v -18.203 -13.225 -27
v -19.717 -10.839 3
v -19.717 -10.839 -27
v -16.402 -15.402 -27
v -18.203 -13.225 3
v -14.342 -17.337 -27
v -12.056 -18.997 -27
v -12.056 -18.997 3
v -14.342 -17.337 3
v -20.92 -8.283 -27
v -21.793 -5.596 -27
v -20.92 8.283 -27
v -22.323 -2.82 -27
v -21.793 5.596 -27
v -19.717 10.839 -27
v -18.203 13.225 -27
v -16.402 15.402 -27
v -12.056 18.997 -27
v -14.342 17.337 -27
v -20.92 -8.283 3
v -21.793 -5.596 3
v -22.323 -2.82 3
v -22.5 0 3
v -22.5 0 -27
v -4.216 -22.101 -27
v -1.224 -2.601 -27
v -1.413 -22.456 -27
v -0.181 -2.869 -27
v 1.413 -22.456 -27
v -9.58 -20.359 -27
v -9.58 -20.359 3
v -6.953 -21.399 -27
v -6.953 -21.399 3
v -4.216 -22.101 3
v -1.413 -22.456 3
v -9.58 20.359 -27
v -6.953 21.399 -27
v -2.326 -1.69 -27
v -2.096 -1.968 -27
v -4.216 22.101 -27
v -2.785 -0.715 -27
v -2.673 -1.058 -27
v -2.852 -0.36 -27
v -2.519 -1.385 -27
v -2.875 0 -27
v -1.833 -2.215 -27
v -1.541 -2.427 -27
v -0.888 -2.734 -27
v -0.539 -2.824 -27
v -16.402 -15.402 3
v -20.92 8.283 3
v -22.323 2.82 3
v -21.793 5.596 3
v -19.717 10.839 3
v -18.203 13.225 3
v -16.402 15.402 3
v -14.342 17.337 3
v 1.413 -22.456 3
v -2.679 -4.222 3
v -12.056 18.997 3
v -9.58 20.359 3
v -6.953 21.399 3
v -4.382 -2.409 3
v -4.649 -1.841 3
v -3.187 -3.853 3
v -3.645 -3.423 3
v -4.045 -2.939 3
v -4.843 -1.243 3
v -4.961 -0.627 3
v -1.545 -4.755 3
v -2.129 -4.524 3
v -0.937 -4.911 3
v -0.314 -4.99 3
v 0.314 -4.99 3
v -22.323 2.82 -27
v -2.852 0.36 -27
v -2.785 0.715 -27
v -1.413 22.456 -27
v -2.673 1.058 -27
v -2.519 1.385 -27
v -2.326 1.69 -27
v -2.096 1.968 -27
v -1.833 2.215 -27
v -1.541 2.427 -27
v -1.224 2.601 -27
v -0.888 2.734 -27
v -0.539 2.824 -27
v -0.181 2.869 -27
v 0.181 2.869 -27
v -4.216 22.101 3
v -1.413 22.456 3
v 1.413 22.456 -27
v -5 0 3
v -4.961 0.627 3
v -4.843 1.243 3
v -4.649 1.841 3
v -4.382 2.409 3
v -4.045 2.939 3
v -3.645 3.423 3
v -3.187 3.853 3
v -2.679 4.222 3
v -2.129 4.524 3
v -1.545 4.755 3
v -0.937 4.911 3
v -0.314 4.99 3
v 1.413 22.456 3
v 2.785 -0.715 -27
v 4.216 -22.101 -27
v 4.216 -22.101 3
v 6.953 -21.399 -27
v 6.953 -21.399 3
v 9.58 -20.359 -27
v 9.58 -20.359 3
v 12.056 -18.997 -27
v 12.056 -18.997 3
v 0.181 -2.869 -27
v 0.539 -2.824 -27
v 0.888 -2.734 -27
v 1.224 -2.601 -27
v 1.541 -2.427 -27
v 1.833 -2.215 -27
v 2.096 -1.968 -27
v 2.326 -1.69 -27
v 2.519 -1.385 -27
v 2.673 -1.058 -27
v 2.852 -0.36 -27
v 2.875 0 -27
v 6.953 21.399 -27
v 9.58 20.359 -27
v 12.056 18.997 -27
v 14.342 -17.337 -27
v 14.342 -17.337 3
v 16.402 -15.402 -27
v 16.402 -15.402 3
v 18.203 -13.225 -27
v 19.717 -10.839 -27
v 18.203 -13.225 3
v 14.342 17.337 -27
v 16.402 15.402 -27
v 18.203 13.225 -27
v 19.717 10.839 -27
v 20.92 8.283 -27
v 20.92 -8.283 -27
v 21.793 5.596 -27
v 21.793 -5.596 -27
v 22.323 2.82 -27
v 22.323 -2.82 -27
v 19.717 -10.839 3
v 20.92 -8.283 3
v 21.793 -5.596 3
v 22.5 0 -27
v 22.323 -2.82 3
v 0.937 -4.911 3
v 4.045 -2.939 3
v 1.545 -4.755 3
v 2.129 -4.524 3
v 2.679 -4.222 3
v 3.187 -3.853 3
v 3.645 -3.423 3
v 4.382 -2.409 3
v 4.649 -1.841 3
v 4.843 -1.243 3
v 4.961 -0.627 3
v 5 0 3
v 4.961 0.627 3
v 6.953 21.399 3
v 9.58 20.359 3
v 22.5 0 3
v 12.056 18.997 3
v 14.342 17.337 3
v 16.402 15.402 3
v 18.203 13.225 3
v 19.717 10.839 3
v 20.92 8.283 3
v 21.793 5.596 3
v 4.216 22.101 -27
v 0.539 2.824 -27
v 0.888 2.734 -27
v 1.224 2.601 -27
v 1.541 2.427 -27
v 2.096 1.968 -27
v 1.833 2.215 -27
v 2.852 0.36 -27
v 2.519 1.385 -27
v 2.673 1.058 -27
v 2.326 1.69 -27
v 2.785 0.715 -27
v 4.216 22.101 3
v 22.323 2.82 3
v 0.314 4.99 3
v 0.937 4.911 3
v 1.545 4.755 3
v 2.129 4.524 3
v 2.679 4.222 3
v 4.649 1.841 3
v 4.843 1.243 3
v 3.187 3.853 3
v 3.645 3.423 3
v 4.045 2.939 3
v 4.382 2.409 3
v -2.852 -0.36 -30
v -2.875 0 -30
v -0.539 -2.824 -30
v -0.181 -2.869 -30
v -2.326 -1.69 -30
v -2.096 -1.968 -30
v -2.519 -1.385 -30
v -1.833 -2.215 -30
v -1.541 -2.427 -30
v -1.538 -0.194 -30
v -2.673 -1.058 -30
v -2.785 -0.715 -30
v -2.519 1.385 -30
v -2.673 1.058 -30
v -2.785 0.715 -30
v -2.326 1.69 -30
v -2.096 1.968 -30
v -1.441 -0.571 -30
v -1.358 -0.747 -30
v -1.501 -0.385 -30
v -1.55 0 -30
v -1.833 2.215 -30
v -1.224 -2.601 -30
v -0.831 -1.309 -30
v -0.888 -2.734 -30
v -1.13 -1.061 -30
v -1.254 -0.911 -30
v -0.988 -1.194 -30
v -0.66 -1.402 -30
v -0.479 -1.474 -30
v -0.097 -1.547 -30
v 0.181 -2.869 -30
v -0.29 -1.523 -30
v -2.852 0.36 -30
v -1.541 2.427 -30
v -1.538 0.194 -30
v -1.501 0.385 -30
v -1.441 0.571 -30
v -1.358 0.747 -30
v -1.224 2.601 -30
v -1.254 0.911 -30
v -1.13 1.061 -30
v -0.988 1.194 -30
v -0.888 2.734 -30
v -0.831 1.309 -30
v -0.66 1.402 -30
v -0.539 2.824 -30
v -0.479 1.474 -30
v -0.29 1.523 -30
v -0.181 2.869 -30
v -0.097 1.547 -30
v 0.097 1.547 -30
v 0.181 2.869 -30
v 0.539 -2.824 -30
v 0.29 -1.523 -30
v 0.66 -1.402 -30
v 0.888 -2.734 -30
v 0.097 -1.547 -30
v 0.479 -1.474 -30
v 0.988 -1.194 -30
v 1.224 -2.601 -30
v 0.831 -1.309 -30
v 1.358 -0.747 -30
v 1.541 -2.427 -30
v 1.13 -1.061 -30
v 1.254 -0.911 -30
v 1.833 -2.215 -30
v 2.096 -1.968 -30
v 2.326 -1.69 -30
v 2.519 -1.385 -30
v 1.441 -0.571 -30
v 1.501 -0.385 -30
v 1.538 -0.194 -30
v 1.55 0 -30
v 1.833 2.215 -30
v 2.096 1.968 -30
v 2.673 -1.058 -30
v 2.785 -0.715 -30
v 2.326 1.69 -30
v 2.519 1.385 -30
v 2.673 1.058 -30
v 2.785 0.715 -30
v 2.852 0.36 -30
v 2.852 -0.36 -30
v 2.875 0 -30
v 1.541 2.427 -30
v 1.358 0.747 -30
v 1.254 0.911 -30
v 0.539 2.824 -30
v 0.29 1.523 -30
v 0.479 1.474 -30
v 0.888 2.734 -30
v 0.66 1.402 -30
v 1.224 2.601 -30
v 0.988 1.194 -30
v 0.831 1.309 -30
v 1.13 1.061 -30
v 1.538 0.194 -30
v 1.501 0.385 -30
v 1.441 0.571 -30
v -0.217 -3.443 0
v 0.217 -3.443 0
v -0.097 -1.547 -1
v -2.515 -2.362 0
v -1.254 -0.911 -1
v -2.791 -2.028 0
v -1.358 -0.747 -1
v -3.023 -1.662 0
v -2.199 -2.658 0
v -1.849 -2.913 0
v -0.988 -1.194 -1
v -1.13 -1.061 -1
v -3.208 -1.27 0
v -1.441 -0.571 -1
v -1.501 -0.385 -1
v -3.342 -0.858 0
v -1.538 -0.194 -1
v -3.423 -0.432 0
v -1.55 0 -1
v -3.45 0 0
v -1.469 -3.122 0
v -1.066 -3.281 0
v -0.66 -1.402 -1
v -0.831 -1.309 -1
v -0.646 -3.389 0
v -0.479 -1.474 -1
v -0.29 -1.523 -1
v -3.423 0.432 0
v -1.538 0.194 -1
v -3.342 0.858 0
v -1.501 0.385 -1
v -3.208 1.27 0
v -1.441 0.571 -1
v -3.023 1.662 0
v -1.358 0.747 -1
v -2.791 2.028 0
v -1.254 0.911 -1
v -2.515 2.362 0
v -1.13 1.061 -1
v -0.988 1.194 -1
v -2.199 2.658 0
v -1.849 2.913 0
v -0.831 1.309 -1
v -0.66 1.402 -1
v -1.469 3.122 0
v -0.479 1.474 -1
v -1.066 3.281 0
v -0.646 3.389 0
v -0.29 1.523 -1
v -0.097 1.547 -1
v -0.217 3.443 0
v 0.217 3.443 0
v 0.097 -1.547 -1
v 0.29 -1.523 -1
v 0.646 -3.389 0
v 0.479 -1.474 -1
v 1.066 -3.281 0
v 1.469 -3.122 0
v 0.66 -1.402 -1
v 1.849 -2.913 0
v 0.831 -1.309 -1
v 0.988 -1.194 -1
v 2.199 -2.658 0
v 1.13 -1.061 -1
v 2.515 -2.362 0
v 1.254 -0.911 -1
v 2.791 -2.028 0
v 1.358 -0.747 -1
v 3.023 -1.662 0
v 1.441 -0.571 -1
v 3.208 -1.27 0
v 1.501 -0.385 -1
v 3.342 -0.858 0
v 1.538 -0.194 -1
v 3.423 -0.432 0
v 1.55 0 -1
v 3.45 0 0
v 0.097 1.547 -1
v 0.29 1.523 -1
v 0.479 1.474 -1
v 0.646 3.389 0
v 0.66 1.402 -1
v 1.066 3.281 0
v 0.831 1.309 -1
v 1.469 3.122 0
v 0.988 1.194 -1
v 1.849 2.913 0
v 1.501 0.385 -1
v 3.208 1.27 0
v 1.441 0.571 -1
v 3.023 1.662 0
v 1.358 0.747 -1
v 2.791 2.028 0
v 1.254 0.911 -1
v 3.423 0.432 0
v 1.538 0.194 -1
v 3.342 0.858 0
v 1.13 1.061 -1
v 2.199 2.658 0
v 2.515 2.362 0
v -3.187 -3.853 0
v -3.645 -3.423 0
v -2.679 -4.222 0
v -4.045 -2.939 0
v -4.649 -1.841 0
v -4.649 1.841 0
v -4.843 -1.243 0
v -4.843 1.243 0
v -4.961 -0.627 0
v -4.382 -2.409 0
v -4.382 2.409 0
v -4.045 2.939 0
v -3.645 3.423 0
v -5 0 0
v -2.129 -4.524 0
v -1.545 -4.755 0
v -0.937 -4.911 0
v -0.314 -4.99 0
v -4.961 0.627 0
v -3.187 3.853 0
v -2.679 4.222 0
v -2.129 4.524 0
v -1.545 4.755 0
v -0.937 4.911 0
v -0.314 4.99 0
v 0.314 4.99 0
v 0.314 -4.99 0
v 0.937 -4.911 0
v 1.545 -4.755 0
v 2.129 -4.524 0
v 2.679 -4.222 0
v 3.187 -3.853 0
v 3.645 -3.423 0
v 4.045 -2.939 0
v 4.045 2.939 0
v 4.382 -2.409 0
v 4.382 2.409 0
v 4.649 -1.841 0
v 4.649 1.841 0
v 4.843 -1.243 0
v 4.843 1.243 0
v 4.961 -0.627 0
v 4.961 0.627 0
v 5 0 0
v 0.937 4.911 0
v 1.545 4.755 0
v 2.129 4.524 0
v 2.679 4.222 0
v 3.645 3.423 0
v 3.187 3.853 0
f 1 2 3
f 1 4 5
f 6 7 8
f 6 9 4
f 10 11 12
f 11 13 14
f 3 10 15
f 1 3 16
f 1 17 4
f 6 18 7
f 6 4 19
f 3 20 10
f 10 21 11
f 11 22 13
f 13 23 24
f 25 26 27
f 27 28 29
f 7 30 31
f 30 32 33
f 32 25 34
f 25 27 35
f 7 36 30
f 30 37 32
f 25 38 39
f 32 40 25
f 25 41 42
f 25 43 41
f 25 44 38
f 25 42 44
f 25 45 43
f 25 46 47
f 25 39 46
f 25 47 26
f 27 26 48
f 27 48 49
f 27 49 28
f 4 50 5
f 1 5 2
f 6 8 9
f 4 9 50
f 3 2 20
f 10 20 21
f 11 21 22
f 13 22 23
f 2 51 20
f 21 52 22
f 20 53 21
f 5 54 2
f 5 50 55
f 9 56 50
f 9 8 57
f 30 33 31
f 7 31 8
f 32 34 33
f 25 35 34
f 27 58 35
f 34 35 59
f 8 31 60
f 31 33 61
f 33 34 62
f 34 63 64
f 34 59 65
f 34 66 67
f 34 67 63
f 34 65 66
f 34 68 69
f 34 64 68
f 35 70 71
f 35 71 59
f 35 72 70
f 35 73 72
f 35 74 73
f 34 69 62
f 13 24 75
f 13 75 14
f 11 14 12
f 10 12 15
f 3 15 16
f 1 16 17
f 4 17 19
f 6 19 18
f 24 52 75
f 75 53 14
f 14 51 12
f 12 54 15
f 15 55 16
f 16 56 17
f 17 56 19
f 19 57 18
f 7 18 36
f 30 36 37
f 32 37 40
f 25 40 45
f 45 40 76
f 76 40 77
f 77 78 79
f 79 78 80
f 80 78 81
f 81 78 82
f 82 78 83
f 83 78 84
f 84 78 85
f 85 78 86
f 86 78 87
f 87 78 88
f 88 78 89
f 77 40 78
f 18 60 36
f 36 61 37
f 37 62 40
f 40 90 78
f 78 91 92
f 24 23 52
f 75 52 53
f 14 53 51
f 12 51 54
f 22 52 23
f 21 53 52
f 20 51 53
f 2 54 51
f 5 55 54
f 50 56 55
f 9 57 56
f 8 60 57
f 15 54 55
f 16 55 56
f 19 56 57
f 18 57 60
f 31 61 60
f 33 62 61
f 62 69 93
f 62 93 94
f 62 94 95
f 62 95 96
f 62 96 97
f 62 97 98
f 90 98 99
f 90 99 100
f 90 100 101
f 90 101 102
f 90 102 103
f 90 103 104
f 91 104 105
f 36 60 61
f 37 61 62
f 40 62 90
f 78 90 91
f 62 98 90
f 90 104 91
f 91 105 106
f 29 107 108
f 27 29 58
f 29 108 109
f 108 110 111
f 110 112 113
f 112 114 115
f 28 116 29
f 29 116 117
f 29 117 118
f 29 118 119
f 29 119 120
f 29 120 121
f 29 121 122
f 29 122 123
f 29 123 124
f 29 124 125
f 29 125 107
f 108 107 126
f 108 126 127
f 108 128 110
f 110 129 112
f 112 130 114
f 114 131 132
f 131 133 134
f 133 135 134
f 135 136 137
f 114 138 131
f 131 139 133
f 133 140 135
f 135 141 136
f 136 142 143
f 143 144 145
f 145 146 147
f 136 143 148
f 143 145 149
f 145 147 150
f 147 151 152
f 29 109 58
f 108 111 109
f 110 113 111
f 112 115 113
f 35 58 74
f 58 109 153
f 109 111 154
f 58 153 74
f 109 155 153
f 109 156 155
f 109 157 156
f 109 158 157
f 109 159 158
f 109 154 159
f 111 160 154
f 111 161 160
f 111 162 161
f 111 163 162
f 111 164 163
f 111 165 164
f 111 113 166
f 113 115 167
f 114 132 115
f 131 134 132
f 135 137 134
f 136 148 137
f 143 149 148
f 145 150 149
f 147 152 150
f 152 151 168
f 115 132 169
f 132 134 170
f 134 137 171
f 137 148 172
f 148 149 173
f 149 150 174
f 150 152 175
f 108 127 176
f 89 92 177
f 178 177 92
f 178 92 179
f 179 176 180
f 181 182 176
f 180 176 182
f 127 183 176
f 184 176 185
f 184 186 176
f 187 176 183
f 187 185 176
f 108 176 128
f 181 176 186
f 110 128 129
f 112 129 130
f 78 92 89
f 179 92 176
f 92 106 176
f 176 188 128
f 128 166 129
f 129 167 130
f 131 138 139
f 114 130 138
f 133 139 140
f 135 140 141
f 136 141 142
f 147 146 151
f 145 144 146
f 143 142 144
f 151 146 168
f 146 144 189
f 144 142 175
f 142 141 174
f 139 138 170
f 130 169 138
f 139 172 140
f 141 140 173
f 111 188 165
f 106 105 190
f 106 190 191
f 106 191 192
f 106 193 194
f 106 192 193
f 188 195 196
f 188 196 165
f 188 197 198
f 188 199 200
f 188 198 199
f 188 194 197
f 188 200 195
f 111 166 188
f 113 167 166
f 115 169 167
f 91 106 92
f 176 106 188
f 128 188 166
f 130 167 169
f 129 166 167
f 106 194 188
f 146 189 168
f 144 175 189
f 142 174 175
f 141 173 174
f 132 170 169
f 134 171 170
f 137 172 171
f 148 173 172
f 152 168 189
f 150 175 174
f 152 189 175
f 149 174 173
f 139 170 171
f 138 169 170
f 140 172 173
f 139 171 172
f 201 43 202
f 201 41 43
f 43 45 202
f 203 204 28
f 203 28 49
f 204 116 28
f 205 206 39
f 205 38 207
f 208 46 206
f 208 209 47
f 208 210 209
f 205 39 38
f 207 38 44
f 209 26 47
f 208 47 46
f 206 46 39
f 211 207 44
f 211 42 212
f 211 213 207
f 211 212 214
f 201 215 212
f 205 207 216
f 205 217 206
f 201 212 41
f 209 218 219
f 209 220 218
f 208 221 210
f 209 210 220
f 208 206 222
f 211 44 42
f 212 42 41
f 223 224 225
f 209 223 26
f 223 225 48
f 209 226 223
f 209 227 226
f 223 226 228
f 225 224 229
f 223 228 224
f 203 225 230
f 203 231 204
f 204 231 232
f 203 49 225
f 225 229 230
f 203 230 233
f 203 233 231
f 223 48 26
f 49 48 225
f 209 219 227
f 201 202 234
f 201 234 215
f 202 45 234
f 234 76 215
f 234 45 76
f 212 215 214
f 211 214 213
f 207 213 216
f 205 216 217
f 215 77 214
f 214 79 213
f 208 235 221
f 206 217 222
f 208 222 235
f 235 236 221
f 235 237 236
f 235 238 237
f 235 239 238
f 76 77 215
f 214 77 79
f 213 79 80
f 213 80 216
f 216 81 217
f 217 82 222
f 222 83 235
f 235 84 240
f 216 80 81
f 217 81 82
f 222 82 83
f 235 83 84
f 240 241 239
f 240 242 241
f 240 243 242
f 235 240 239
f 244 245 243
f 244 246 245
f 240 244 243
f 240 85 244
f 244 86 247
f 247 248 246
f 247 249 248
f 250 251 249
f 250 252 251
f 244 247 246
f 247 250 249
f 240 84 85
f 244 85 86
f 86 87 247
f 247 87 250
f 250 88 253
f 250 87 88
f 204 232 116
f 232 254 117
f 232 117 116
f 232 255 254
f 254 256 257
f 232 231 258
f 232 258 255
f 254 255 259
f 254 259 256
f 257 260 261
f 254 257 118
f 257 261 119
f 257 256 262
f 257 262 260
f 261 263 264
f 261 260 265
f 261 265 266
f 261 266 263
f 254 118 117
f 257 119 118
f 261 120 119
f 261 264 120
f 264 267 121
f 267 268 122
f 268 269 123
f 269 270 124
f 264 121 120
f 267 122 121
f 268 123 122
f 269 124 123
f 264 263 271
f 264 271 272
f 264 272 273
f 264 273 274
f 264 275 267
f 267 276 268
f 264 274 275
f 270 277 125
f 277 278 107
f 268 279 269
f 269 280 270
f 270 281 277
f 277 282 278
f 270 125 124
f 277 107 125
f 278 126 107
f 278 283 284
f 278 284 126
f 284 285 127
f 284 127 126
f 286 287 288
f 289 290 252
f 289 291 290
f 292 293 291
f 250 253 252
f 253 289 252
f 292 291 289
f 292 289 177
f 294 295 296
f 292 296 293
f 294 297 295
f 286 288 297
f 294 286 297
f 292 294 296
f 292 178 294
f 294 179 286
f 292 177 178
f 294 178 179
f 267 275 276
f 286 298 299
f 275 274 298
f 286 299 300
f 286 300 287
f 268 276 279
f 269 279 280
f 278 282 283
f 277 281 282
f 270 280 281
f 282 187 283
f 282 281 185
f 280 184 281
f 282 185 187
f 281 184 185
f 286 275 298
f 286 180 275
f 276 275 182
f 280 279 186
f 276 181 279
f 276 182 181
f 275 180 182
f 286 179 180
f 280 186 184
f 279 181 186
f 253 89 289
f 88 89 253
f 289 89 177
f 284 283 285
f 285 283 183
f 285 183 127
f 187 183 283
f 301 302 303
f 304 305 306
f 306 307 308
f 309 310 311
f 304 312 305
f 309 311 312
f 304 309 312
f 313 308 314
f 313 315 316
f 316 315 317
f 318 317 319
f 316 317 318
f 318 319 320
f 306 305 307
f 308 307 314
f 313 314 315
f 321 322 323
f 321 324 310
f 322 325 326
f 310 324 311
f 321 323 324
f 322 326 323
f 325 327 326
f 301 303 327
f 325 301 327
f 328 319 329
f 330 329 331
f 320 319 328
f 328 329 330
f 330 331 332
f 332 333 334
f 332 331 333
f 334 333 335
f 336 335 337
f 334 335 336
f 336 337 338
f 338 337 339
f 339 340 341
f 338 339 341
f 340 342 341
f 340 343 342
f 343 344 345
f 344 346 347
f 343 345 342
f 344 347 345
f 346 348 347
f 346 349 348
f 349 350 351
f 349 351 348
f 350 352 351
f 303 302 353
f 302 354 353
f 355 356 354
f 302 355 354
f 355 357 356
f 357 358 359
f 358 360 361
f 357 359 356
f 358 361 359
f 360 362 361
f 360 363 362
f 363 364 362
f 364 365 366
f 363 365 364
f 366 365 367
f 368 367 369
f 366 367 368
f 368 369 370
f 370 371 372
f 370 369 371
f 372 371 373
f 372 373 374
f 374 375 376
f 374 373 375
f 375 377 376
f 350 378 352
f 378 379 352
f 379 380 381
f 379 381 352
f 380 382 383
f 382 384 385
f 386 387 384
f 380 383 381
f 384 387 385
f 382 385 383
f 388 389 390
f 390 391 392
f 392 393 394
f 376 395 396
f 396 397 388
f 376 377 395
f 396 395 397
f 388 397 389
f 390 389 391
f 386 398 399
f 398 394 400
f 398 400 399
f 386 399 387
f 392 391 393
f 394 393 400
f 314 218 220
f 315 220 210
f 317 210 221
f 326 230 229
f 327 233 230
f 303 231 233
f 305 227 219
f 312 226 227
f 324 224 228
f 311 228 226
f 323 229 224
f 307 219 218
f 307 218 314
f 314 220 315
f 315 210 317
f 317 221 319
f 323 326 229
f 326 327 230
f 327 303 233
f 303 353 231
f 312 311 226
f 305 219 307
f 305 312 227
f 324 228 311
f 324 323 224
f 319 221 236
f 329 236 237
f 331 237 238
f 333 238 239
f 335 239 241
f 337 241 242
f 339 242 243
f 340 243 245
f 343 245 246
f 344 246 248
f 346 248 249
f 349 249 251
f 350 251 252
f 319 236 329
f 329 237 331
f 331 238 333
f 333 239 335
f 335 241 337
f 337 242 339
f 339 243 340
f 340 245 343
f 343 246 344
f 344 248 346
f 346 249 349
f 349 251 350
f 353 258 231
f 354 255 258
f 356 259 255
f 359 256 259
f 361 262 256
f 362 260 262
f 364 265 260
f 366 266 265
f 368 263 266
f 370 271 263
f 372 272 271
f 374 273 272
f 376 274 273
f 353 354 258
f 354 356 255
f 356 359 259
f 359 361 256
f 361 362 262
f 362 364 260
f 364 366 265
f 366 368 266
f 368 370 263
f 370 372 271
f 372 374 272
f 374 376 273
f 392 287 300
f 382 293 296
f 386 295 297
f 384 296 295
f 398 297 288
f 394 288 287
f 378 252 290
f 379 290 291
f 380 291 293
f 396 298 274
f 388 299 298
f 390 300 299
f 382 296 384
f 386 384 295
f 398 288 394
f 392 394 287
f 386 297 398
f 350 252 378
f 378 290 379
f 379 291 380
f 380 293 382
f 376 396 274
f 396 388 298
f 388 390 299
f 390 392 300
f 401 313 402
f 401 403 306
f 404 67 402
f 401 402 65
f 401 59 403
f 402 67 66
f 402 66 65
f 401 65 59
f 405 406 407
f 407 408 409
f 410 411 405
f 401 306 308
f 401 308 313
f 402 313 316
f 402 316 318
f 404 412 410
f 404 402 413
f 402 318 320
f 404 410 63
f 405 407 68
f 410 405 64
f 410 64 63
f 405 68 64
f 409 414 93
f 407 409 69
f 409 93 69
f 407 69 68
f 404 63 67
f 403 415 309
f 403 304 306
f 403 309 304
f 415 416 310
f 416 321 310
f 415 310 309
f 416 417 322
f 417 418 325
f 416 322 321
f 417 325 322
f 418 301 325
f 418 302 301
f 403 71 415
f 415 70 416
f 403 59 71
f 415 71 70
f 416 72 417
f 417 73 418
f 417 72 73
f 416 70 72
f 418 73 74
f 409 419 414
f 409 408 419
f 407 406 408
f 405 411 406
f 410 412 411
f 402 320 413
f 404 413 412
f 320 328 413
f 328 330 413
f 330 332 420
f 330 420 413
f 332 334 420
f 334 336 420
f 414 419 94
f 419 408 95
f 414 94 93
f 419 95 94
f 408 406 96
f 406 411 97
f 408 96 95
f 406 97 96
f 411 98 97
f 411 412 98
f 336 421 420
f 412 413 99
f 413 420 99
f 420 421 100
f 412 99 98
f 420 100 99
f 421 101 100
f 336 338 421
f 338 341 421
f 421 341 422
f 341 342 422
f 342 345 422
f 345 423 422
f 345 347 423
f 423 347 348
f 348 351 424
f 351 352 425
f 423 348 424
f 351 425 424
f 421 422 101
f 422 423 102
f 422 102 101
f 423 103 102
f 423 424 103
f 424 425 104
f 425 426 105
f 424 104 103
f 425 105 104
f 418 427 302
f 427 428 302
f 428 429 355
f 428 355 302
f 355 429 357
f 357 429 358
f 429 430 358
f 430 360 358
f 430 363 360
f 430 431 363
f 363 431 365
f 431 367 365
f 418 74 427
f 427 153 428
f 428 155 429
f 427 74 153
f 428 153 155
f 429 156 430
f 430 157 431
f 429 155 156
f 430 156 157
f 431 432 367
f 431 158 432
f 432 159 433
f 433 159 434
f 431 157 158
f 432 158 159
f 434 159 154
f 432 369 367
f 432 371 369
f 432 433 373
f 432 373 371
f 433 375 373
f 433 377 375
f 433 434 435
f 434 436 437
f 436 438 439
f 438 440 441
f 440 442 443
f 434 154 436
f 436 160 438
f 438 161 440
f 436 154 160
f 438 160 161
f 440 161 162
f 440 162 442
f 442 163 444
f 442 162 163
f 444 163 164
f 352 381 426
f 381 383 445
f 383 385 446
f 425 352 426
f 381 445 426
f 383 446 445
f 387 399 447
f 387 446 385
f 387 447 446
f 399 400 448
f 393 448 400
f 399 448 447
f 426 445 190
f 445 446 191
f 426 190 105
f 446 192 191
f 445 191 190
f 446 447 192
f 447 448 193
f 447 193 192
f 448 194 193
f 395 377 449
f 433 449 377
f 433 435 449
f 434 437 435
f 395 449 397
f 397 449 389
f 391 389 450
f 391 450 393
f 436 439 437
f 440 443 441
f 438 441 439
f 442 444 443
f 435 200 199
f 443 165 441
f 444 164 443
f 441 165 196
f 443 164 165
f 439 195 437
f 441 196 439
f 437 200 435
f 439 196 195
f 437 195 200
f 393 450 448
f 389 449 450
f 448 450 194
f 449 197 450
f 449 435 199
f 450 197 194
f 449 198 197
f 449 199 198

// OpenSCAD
$fn = 50;


difference() {
	union() {
		translate(v = [0, 0, -27.0000000000]) {
			cylinder(h = 30, r = 22.5000000000);
		}
		#translate(v = [0, 0, -30.0000000000]) {
			cylinder(h = 30, r = 2.8750000000);
		}
	}
	union() {
		translate(v = [0, 0, 0]) {
			rotate(a = [0, 0, 0]) {
				difference() {
					union() {
						translate(v = [0, 0, -30.0000000000]) {
							cylinder(h = 30, r = 1.2500000000);
						}
						translate(v = [0, 0, -1.0000000000]) {
							cylinder(h = 1.0000000000, r1 = 1.5500000000, r2 = 3.4500000000);
						}
						translate(v = [0, 0, -30.0000000000]) {
							cylinder(h = 30, r = 1.5500000000);
						}
						translate(v = [0, 0, -30.0000000000]) {
							cylinder(h = 30, r = 1.2500000000);
						}
					}
					union();
				}
			}
		}
		#cylinder(h = 3, r = 5.0000000000);
	}
}
